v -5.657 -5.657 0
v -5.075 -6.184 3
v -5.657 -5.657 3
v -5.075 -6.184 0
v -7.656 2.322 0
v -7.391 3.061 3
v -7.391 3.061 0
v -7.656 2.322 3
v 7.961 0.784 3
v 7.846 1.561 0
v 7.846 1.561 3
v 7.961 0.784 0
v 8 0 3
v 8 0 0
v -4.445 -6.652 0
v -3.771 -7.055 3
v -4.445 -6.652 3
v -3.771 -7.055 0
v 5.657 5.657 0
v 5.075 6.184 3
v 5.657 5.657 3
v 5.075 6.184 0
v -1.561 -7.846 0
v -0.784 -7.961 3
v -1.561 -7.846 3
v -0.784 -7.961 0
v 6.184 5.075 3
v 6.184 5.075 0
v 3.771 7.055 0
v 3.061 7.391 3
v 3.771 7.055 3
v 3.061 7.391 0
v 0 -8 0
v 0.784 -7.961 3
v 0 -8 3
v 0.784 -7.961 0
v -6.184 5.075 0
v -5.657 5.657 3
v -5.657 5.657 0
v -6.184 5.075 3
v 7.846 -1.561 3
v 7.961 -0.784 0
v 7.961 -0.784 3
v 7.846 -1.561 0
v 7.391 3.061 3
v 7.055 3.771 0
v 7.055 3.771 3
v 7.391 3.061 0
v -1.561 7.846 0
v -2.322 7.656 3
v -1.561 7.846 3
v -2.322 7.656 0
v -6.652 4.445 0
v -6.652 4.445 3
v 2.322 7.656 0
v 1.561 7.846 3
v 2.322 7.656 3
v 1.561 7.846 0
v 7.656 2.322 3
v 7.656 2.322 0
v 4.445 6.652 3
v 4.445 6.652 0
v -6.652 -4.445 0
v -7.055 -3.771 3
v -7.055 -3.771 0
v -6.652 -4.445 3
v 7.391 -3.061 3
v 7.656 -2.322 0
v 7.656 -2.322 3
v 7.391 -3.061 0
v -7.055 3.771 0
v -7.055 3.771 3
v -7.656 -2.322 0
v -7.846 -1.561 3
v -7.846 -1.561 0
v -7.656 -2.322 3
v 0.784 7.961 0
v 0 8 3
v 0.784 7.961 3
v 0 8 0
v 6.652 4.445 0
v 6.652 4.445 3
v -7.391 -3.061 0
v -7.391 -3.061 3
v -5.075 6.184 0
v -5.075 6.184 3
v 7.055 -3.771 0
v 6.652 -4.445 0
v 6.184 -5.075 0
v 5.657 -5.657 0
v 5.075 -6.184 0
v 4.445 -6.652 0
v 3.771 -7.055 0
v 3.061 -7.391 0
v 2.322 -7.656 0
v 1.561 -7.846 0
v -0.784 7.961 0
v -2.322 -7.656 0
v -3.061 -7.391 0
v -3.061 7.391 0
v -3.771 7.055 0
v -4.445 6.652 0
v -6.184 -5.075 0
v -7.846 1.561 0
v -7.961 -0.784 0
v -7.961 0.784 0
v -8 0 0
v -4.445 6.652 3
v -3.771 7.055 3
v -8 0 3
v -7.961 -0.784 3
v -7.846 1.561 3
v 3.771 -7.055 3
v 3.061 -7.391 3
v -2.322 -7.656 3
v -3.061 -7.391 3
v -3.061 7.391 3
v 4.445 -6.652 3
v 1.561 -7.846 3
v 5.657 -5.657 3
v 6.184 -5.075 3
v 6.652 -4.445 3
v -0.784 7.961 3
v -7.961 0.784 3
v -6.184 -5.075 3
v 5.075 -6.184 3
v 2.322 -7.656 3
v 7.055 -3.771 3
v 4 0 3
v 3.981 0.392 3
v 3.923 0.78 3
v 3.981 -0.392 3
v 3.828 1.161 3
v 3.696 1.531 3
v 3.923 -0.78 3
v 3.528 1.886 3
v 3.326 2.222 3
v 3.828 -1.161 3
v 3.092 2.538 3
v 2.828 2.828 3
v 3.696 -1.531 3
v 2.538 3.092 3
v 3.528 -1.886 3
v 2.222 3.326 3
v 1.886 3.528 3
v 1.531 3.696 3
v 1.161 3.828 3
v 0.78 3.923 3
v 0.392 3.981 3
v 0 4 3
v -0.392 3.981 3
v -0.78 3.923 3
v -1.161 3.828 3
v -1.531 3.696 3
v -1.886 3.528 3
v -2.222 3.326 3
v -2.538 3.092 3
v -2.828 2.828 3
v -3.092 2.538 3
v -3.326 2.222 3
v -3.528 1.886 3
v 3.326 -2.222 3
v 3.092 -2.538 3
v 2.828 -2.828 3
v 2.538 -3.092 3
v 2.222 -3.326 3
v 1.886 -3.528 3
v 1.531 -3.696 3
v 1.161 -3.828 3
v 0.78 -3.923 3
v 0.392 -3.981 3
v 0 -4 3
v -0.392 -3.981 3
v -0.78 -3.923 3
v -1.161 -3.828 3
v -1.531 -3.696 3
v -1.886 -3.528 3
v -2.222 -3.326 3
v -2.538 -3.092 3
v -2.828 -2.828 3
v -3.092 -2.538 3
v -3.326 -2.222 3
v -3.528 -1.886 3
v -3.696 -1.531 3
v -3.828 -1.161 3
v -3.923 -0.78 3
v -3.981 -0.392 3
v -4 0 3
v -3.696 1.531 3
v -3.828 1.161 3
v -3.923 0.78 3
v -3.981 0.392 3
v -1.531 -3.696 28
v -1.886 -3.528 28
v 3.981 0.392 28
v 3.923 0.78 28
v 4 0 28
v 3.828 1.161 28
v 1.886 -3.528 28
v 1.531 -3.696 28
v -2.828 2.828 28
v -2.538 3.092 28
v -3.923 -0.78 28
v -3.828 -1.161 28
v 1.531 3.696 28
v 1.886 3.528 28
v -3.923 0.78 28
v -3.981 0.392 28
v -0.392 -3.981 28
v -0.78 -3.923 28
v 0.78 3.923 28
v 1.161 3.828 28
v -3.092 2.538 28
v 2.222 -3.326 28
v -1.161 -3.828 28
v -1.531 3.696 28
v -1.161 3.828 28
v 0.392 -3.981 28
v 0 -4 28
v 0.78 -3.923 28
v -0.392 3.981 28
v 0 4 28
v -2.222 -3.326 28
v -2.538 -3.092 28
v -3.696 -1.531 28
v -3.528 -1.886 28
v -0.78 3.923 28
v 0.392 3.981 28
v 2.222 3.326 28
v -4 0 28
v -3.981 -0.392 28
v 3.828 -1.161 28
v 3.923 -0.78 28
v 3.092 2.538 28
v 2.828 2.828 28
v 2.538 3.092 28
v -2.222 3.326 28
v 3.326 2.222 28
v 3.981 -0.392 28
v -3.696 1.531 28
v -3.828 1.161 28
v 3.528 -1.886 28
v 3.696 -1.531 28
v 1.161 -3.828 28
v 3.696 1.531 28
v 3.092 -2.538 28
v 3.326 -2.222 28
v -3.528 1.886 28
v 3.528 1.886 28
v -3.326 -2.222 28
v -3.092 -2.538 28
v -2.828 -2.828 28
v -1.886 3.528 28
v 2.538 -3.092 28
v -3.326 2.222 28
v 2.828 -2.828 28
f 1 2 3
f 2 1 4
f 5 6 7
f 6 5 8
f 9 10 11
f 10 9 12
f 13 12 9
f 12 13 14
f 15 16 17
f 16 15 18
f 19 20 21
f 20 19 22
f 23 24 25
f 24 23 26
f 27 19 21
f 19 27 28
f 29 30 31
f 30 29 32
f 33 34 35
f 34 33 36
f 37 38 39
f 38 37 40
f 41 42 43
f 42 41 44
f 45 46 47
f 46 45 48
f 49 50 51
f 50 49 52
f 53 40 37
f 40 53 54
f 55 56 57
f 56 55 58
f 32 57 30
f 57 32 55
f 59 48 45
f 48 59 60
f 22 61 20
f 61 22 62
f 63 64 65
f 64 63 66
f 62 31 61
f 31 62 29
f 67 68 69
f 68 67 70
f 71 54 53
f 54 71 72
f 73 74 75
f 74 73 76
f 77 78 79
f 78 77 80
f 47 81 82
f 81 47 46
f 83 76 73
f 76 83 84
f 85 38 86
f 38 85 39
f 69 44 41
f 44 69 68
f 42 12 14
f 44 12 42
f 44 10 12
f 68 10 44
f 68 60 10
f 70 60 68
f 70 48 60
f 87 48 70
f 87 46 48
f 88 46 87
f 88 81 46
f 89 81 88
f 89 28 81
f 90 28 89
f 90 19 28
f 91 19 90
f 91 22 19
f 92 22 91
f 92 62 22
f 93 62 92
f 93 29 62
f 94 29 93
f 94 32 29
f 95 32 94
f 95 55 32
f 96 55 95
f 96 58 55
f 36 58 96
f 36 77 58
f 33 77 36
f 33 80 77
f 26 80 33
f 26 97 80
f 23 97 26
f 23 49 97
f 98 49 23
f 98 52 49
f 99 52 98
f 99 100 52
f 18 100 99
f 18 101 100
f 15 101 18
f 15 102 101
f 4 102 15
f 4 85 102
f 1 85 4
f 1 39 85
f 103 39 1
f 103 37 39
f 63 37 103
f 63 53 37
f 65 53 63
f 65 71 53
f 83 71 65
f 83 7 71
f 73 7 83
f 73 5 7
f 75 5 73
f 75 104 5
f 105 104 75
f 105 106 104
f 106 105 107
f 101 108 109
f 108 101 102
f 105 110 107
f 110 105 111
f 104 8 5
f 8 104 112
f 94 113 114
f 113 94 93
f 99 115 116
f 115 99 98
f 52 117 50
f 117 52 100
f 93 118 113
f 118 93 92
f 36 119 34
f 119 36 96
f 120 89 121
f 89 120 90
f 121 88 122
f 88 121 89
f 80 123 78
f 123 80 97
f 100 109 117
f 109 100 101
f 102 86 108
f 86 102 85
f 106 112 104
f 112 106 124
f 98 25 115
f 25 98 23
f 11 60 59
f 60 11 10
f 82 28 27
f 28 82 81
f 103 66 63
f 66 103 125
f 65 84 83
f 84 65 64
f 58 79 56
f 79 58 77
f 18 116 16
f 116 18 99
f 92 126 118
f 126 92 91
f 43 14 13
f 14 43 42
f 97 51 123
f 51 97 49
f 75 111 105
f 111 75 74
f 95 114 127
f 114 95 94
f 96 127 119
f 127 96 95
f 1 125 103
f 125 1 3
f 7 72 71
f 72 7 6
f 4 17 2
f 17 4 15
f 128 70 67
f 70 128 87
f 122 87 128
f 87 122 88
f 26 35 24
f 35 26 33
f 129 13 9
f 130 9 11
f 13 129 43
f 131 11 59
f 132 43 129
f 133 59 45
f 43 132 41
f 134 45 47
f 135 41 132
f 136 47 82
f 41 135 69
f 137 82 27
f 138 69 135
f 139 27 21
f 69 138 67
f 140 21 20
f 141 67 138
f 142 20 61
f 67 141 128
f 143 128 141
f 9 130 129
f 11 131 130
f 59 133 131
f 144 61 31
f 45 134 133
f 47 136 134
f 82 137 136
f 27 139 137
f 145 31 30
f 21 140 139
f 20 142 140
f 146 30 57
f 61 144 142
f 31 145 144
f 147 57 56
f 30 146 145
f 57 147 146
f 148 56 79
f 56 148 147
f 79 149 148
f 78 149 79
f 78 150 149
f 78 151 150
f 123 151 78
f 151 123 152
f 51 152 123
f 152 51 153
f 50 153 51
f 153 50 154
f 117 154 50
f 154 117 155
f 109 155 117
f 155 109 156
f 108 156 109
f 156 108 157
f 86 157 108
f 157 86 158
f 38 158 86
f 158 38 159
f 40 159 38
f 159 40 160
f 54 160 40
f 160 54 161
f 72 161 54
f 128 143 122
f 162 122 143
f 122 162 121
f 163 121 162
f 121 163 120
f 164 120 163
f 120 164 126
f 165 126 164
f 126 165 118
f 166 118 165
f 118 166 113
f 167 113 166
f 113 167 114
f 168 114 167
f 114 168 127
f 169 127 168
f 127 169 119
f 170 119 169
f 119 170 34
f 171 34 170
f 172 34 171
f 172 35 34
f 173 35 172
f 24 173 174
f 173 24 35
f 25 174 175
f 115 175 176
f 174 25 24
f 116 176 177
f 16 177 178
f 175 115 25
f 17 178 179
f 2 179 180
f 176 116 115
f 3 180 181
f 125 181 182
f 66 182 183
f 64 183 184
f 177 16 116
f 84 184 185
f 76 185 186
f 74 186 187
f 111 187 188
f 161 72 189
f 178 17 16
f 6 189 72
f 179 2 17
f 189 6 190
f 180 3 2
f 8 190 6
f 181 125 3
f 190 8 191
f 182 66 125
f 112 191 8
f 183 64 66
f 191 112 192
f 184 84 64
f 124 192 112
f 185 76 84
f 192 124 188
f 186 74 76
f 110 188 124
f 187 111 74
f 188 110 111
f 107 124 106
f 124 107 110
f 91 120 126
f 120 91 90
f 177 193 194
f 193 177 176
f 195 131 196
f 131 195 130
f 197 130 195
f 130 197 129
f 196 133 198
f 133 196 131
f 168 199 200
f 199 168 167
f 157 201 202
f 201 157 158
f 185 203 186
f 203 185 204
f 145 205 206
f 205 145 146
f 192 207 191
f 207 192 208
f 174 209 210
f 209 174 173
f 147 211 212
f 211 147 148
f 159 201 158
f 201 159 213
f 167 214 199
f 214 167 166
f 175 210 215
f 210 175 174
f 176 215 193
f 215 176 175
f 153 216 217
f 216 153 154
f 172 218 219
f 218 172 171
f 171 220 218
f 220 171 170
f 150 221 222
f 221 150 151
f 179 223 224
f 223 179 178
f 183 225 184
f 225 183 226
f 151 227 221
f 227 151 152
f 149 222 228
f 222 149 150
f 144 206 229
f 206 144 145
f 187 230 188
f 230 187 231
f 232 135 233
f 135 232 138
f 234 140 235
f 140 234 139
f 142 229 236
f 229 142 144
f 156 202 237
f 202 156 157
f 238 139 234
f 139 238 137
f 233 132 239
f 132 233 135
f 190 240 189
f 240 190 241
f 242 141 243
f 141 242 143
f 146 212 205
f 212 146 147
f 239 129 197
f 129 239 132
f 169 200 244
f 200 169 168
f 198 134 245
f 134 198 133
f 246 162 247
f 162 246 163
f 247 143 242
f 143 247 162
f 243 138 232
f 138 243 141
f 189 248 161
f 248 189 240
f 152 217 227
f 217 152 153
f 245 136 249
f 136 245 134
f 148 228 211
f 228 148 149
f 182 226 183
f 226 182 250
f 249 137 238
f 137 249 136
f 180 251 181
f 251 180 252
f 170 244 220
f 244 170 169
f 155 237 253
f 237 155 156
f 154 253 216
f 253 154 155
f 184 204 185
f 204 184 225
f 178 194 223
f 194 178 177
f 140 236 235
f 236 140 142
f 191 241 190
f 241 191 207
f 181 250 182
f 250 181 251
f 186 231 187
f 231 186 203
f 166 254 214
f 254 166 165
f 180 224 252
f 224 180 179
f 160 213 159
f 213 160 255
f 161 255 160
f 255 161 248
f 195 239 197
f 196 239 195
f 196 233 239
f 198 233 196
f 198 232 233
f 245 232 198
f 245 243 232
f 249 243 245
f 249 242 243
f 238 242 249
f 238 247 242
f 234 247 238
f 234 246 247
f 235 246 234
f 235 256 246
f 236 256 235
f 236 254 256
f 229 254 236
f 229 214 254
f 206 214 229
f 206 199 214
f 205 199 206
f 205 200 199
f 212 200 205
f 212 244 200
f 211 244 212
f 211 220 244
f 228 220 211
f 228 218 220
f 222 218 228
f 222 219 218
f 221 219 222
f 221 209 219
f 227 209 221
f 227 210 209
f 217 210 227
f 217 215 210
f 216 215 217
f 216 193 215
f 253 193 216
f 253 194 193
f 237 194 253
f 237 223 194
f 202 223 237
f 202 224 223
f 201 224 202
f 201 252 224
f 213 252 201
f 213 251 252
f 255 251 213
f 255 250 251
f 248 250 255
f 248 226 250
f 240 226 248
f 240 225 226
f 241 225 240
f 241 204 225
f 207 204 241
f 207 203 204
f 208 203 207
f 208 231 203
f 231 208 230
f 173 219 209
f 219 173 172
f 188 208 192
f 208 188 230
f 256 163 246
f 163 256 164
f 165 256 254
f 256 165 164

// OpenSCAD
// file: measurements.scad
// BASTION printed parts — shared measurements
// ============================================
// MEASURE YOUR ACTUAL DEVICES WITH CALIPERS and update the PLACEHOLDER
// values before printing anything. Every part file includes this file.
// All dimensions in mm. Device boxes are [length, width, height].

// -- global fit tuning --
fit     = 0.6;   // pocket clearance per side (0.4 tight .. 0.8 loose)
wall    = 3;     // fence/pocket wall thickness
fence_h = 14;    // how tall the pocket fences stand above the tray

// -- devices (PLACEHOLDERS — measure yours) --
mini_pc = [127, 127, 45];   // typical N100 box; measure your unit
router  = [102,  68, 24];   // GL.iNet — measure your model
buck    = [ 66,  46, 26];   // buck-boost converter incl. heatsink
usb_hub = [ 95,  35, 18];   // powered USB hub

// -- deck tray --
deck = [360, 180, 4];       // tray length, width, base thickness
                            // must fit YOUR case interior — measure first

// -- small parts --
pp_cut   = [16.4, 17.0];    // Powerpole PP15/45 pair cutout — verify against
                            // your snapped-together housings before printing
cable_d  = 7;               // cable bundle diameter for cable_clip
bore_d   = 8;               // gland_plug shaft dia — match the wire size your
                            // spare gland is sized to clamp
// main file
// Blanking plug for an unused cable gland — the gland clamps the shaft like
// a wire, keeping the case's IP rating honest with no cable installed.
// Set bore_d in measurements.scad to the wire size the gland is rated to
// clamp (mid-range of its seal). ASA, solid (100% infill), it's tiny.

include <measurements.scad>
$fn = 64;

flange_d = bore_d + 8;
flange_t = 3;
shaft_l  = 25;

cylinder(h = flange_t, d = flange_d);
translate([0, 0, flange_t]) cylinder(h = shaft_l, d = bore_d);
